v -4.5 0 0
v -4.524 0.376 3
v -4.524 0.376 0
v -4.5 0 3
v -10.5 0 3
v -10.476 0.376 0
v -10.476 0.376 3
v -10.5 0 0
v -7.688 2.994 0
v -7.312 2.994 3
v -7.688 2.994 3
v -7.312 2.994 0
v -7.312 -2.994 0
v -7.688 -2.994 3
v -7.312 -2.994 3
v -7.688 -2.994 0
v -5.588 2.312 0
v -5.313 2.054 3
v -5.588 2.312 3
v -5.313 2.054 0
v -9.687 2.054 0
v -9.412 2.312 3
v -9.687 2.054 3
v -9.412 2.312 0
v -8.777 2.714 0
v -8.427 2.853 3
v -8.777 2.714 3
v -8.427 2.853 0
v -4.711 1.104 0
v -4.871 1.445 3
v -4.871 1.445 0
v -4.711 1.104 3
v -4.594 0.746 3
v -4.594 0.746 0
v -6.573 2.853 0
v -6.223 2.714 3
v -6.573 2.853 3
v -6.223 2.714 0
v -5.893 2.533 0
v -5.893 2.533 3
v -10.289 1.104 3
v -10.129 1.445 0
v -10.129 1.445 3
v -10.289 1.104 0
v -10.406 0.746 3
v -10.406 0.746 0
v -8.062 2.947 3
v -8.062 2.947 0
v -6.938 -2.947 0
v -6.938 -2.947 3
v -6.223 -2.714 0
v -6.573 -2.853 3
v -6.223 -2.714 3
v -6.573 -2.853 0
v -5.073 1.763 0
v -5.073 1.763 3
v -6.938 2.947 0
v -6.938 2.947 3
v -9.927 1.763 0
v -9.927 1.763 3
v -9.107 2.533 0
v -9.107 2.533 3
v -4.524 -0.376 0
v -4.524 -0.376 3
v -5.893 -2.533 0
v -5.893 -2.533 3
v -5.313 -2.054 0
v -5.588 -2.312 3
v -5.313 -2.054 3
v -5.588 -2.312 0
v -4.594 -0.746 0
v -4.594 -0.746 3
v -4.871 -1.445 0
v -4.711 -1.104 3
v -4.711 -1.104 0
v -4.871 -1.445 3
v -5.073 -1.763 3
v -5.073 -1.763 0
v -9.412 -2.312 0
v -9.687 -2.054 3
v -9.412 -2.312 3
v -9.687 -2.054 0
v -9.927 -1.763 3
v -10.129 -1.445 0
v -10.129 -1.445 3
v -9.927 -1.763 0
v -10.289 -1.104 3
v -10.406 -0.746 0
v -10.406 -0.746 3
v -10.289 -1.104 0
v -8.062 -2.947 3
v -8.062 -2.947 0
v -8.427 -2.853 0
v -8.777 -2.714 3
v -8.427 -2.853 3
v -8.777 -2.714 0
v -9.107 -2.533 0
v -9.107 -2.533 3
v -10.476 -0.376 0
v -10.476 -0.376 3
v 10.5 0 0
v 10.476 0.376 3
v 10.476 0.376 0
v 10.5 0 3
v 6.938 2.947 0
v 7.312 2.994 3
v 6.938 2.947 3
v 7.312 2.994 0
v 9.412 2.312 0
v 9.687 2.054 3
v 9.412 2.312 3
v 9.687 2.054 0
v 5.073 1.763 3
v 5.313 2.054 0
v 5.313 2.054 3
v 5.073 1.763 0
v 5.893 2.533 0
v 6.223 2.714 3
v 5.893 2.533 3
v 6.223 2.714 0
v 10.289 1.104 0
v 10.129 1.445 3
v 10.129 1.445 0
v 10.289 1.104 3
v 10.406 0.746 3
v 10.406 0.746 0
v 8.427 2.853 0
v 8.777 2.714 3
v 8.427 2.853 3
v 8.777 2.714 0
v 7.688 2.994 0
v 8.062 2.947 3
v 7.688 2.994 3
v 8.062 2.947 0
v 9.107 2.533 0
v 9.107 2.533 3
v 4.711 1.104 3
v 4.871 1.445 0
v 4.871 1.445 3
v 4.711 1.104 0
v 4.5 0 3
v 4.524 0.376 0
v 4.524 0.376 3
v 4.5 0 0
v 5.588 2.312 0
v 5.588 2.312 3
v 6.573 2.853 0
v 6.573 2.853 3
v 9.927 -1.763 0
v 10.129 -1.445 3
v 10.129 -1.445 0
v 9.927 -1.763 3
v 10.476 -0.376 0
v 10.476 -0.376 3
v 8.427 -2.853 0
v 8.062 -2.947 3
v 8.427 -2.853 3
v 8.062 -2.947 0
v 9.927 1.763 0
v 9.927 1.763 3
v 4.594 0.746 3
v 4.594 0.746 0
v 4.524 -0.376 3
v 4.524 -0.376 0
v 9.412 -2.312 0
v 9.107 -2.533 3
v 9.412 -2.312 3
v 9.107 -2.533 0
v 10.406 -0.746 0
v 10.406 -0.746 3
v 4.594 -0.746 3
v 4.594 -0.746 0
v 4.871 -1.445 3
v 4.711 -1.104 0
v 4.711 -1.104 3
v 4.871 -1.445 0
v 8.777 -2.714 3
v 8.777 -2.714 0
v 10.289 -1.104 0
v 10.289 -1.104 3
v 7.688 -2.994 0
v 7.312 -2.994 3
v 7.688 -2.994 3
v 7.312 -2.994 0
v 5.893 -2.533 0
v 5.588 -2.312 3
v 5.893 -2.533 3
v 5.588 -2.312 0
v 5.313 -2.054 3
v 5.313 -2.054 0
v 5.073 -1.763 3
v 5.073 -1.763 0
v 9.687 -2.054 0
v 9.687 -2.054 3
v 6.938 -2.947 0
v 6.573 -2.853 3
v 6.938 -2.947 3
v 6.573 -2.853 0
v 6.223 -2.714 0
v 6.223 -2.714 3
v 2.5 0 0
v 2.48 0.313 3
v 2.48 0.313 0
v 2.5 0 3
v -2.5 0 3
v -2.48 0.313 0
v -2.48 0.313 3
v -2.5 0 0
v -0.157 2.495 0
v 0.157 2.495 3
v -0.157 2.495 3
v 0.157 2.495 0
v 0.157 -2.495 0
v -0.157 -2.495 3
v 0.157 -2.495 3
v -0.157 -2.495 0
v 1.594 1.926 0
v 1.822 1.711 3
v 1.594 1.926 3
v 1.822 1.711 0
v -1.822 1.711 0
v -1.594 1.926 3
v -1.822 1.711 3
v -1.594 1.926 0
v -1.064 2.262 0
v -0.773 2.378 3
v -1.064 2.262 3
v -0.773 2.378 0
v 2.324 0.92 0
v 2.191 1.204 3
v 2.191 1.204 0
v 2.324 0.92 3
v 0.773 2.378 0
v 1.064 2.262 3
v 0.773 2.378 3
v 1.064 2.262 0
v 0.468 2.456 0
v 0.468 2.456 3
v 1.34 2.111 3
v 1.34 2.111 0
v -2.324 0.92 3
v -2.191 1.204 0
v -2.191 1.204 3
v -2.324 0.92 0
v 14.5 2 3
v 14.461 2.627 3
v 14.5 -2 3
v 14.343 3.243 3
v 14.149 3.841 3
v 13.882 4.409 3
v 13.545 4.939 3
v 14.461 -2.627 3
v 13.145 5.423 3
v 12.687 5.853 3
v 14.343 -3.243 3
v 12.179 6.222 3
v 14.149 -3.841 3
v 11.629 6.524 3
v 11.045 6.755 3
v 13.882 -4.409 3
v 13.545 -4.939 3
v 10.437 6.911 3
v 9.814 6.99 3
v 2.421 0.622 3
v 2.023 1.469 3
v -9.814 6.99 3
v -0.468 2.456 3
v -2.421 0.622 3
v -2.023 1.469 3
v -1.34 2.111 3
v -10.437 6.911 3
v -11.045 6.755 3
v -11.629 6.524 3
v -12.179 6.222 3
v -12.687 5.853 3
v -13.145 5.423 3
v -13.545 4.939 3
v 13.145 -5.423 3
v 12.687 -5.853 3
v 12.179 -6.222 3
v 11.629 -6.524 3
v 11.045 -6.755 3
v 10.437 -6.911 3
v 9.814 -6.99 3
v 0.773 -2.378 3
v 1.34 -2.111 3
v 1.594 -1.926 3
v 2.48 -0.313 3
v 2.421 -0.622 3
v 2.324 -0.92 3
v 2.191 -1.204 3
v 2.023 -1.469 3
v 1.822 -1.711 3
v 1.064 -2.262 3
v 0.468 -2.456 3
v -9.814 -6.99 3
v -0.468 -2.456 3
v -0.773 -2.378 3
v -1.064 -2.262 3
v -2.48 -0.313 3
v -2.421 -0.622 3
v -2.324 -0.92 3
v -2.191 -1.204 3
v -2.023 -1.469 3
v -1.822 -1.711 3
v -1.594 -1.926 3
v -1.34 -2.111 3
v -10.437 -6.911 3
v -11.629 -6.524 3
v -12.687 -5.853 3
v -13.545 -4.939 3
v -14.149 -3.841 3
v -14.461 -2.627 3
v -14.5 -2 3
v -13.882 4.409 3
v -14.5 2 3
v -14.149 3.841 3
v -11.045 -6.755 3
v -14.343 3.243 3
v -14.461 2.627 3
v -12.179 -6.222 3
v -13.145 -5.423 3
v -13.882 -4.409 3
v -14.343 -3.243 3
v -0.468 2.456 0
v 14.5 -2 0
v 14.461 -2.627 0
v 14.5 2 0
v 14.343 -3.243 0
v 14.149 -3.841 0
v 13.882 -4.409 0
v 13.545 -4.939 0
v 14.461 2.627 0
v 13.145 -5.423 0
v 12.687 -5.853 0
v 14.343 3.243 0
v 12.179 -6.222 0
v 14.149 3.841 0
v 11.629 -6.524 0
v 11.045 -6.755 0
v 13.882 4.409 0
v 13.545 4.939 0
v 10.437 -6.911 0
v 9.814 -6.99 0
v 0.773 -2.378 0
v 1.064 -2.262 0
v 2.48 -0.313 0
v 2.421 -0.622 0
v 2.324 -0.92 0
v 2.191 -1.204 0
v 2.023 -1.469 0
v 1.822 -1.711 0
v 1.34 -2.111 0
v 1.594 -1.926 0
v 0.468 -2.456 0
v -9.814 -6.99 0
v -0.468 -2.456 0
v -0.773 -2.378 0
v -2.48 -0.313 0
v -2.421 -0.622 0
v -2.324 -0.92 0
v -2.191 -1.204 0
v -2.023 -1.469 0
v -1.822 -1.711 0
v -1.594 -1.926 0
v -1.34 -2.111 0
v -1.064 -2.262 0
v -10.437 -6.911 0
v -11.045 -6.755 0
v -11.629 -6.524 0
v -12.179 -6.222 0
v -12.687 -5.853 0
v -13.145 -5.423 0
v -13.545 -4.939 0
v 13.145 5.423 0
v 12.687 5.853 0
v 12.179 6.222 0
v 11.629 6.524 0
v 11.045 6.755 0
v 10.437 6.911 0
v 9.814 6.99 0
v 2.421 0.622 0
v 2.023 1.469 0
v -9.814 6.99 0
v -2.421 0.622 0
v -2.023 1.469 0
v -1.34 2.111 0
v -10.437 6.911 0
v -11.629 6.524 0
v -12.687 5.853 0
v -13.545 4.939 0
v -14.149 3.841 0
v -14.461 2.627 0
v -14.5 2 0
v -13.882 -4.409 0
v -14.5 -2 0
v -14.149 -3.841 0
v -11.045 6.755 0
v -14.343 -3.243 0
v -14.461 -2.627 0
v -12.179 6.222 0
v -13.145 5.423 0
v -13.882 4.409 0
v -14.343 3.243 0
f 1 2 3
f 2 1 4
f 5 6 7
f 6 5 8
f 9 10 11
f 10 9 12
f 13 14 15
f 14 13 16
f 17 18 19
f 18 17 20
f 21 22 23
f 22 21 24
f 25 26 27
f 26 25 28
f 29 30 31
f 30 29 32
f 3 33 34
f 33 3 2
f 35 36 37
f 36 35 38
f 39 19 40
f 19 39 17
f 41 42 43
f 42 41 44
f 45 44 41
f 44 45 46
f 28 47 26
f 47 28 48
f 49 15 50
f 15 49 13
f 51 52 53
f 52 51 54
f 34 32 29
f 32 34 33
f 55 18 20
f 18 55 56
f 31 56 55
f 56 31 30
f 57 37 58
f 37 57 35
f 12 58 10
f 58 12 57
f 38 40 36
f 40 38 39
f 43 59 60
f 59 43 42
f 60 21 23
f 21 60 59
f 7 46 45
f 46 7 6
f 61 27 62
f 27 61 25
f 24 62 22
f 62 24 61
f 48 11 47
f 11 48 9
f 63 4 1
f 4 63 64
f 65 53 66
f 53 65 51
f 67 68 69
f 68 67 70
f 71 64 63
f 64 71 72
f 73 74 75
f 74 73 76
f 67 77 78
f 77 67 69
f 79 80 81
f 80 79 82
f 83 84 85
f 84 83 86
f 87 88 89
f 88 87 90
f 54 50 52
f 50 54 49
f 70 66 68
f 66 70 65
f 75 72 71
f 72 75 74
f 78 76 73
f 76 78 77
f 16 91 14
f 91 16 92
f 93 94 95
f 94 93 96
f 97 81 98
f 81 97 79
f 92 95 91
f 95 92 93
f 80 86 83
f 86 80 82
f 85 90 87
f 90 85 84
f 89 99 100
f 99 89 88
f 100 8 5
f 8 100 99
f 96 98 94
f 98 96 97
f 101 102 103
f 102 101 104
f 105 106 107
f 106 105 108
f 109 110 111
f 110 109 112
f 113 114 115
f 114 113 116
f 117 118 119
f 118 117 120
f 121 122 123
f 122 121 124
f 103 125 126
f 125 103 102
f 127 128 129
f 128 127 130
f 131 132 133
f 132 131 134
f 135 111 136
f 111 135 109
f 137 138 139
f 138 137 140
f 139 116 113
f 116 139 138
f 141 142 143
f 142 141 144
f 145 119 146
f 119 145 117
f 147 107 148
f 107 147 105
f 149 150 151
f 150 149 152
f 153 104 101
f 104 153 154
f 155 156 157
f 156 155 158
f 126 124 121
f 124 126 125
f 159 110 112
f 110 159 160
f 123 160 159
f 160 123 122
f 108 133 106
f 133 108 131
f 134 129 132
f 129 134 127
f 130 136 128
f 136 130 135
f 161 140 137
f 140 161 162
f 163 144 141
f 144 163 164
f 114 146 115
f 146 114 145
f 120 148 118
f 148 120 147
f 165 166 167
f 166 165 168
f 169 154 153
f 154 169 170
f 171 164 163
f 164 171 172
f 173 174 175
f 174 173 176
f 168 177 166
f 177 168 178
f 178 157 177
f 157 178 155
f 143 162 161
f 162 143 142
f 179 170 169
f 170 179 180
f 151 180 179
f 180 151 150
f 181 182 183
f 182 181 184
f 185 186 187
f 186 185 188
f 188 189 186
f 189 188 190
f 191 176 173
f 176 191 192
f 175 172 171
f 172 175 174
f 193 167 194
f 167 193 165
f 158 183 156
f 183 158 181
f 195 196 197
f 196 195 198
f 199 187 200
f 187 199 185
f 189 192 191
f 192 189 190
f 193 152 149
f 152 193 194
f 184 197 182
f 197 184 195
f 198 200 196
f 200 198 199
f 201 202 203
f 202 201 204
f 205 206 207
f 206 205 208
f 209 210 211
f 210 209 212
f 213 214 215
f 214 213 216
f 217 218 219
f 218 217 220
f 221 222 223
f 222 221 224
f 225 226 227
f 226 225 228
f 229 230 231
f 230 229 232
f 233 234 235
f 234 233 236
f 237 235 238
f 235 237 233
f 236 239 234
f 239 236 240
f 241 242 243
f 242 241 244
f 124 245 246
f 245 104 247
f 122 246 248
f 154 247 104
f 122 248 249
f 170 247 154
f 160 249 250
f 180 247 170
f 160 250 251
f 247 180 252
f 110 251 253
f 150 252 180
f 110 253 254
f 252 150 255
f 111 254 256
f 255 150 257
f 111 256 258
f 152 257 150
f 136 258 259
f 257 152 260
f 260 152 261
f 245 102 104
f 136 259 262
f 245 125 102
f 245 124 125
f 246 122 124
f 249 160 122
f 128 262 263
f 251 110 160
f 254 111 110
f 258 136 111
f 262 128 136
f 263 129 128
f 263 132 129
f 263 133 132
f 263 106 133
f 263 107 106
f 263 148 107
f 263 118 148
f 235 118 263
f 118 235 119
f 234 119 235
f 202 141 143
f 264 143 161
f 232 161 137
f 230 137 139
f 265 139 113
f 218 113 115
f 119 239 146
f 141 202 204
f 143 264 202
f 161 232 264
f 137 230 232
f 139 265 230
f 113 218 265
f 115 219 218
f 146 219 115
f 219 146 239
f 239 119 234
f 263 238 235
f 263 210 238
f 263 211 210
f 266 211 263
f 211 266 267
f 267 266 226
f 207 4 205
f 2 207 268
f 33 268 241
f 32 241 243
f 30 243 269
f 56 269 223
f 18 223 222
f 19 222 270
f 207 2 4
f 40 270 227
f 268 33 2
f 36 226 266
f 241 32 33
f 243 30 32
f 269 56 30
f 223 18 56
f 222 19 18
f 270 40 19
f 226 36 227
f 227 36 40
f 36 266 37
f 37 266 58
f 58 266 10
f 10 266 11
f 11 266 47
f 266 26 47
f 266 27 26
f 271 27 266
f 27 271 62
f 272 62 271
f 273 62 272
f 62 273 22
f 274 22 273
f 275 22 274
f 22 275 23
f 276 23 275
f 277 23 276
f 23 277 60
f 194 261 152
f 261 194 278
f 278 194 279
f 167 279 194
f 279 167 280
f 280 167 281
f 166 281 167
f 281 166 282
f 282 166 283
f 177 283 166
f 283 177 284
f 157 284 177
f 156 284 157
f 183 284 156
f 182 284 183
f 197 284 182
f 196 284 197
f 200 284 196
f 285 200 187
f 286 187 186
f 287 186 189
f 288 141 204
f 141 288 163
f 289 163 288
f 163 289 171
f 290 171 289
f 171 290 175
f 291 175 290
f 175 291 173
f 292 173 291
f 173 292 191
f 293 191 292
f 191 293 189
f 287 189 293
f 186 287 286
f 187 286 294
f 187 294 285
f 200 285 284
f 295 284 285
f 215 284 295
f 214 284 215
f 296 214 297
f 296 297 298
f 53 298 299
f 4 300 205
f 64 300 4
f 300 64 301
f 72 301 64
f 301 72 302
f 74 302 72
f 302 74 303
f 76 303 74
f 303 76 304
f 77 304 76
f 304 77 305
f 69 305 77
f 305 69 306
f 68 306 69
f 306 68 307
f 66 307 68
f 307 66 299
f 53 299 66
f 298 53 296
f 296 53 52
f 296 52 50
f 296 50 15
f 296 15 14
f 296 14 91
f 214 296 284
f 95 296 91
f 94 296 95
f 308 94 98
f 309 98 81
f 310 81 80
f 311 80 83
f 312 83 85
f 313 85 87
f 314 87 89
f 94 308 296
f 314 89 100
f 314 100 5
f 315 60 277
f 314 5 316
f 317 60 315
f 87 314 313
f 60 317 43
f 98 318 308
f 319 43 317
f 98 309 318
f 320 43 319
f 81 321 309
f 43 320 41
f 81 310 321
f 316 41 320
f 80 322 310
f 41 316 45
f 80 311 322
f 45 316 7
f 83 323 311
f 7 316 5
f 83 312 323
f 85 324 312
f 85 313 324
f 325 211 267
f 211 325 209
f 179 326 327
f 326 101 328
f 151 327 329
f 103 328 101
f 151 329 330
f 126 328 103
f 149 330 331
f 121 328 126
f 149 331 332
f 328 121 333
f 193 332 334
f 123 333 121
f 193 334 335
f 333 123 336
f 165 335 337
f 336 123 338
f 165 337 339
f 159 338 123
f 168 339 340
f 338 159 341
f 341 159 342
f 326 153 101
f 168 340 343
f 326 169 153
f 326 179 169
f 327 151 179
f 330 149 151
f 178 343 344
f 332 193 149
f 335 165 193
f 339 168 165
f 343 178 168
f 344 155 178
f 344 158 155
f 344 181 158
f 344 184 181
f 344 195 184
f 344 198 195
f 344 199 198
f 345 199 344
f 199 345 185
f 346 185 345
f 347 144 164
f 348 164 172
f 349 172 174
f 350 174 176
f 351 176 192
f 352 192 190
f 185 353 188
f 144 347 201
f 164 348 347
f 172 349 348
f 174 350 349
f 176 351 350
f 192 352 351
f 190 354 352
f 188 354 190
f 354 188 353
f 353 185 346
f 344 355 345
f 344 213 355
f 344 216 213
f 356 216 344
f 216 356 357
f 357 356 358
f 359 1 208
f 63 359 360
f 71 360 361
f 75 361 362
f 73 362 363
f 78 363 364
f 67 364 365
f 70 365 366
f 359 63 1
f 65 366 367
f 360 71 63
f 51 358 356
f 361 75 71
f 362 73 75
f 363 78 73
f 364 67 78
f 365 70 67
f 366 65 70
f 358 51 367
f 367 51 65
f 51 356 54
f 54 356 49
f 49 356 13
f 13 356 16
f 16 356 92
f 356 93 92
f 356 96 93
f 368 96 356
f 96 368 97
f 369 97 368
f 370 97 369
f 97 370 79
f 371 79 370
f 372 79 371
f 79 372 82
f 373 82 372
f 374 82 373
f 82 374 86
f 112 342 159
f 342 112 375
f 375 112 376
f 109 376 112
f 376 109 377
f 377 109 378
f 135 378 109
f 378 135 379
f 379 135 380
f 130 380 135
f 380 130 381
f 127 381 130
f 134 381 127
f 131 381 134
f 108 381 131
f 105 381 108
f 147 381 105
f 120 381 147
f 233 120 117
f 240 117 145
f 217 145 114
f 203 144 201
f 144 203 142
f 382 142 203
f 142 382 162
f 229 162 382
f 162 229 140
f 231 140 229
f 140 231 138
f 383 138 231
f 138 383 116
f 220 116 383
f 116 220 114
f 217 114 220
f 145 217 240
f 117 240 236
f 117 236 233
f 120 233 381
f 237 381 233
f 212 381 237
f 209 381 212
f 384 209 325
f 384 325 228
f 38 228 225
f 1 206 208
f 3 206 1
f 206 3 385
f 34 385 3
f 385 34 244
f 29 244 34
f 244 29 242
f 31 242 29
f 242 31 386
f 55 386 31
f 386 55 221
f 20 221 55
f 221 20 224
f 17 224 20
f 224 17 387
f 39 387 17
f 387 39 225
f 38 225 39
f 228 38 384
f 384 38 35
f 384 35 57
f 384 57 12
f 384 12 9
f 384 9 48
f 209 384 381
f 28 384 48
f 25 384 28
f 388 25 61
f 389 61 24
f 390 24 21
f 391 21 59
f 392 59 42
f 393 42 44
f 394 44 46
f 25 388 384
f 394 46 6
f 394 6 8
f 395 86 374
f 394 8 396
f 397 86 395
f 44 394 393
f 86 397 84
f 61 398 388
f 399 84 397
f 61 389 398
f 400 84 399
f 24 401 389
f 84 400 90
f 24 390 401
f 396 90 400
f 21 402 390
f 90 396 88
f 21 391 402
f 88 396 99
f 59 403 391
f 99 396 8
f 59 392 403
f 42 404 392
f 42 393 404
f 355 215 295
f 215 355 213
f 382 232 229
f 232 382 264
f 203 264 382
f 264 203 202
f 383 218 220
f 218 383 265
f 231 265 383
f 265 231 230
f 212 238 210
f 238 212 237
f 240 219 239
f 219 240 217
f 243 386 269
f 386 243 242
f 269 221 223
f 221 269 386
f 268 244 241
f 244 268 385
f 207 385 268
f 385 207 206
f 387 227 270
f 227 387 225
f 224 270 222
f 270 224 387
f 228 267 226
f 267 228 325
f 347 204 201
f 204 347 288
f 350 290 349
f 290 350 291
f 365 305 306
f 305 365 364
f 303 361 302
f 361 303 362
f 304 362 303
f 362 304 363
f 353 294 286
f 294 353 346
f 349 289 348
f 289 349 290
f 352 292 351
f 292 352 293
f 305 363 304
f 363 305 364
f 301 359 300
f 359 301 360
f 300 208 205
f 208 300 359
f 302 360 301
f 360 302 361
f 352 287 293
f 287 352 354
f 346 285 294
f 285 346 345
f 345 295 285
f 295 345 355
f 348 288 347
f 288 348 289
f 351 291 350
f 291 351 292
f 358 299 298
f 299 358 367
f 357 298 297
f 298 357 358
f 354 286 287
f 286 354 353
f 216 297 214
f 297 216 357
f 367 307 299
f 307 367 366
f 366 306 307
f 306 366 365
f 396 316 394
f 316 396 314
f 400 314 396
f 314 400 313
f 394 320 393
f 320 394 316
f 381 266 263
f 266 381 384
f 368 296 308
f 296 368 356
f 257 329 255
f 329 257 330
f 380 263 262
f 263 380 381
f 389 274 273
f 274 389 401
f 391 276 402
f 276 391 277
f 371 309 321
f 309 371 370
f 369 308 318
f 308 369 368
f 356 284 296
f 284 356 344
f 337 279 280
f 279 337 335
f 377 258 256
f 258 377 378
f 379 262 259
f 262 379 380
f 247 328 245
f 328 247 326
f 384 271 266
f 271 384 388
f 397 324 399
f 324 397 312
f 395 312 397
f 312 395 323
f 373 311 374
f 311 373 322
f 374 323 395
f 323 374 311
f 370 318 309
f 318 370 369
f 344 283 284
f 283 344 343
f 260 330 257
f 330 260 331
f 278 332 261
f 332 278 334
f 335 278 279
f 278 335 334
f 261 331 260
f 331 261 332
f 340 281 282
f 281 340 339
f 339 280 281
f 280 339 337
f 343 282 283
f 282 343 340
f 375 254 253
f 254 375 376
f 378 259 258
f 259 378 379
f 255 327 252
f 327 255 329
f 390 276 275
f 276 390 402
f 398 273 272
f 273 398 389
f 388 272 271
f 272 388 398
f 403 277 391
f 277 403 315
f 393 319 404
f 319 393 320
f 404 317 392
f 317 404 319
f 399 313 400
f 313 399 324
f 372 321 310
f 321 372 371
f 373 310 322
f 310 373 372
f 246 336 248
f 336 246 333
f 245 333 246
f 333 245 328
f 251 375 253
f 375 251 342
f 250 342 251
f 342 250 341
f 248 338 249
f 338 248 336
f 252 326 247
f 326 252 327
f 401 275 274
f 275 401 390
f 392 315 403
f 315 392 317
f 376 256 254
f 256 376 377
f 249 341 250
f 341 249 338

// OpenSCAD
$fn = 50;


difference() {
	union() {
		hull() {
			translate(v = [-9.5000000000, 2.0000000000, 0]) {
				cylinder(h = 3, r = 5);
			}
			translate(v = [9.5000000000, 2.0000000000, 0]) {
				cylinder(h = 3, r = 5);
			}
			translate(v = [-9.5000000000, -2.0000000000, 0]) {
				cylinder(h = 3, r = 5);
			}
			translate(v = [9.5000000000, -2.0000000000, 0]) {
				cylinder(h = 3, r = 5);
			}
		}
	}
	union() {
		#translate(v = [-7.5000000000, 0.0000000000, 0]) {
			cylinder(h = 3, r = 3.0000000000);
		}
		#translate(v = [7.5000000000, 0.0000000000, 0]) {
			cylinder(h = 3, r = 3.0000000000);
		}
		#translate(v = [-7.5000000000, 0.0000000000, -100.0000000000]) {
			cylinder(h = 200, r = 3.0000000000);
		}
		#translate(v = [-7.5000000000, 0.0000000000, -100.0000000000]) {
			cylinder(h = 200, r = 3.0000000000);
		}
		#translate(v = [7.5000000000, 0.0000000000, -100.0000000000]) {
			cylinder(h = 200, r = 3.0000000000);
		}
		#translate(v = [7.5000000000, 0.0000000000, -100.0000000000]) {
			cylinder(h = 200, r = 3.0000000000);
		}
		#translate(v = [-7.5000000000, 0.0000000000, 0]) {
			cylinder(h = 3, r = 1.5000000000);
		}
		#translate(v = [7.5000000000, 0.0000000000, 0]) {
			cylinder(h = 3, r = 1.5000000000);
		}
		#translate(v = [-7.5000000000, 0.0000000000, 0]) {
			cylinder(h = 3, r = 1.5000000000);
		}
		#translate(v = [7.5000000000, 0.0000000000, 0]) {
			cylinder(h = 3, r = 1.5000000000);
		}
		#translate(v = [-7.5000000000, 0.0000000000, 0]) {
			cylinder(h = 3, r = 1.5000000000);
		}
		#translate(v = [7.5000000000, 0.0000000000, 0]) {
			cylinder(h = 3, r = 1.5000000000);
		}
		#cylinder(h = 3, r = 2.5000000000);
	}
}
